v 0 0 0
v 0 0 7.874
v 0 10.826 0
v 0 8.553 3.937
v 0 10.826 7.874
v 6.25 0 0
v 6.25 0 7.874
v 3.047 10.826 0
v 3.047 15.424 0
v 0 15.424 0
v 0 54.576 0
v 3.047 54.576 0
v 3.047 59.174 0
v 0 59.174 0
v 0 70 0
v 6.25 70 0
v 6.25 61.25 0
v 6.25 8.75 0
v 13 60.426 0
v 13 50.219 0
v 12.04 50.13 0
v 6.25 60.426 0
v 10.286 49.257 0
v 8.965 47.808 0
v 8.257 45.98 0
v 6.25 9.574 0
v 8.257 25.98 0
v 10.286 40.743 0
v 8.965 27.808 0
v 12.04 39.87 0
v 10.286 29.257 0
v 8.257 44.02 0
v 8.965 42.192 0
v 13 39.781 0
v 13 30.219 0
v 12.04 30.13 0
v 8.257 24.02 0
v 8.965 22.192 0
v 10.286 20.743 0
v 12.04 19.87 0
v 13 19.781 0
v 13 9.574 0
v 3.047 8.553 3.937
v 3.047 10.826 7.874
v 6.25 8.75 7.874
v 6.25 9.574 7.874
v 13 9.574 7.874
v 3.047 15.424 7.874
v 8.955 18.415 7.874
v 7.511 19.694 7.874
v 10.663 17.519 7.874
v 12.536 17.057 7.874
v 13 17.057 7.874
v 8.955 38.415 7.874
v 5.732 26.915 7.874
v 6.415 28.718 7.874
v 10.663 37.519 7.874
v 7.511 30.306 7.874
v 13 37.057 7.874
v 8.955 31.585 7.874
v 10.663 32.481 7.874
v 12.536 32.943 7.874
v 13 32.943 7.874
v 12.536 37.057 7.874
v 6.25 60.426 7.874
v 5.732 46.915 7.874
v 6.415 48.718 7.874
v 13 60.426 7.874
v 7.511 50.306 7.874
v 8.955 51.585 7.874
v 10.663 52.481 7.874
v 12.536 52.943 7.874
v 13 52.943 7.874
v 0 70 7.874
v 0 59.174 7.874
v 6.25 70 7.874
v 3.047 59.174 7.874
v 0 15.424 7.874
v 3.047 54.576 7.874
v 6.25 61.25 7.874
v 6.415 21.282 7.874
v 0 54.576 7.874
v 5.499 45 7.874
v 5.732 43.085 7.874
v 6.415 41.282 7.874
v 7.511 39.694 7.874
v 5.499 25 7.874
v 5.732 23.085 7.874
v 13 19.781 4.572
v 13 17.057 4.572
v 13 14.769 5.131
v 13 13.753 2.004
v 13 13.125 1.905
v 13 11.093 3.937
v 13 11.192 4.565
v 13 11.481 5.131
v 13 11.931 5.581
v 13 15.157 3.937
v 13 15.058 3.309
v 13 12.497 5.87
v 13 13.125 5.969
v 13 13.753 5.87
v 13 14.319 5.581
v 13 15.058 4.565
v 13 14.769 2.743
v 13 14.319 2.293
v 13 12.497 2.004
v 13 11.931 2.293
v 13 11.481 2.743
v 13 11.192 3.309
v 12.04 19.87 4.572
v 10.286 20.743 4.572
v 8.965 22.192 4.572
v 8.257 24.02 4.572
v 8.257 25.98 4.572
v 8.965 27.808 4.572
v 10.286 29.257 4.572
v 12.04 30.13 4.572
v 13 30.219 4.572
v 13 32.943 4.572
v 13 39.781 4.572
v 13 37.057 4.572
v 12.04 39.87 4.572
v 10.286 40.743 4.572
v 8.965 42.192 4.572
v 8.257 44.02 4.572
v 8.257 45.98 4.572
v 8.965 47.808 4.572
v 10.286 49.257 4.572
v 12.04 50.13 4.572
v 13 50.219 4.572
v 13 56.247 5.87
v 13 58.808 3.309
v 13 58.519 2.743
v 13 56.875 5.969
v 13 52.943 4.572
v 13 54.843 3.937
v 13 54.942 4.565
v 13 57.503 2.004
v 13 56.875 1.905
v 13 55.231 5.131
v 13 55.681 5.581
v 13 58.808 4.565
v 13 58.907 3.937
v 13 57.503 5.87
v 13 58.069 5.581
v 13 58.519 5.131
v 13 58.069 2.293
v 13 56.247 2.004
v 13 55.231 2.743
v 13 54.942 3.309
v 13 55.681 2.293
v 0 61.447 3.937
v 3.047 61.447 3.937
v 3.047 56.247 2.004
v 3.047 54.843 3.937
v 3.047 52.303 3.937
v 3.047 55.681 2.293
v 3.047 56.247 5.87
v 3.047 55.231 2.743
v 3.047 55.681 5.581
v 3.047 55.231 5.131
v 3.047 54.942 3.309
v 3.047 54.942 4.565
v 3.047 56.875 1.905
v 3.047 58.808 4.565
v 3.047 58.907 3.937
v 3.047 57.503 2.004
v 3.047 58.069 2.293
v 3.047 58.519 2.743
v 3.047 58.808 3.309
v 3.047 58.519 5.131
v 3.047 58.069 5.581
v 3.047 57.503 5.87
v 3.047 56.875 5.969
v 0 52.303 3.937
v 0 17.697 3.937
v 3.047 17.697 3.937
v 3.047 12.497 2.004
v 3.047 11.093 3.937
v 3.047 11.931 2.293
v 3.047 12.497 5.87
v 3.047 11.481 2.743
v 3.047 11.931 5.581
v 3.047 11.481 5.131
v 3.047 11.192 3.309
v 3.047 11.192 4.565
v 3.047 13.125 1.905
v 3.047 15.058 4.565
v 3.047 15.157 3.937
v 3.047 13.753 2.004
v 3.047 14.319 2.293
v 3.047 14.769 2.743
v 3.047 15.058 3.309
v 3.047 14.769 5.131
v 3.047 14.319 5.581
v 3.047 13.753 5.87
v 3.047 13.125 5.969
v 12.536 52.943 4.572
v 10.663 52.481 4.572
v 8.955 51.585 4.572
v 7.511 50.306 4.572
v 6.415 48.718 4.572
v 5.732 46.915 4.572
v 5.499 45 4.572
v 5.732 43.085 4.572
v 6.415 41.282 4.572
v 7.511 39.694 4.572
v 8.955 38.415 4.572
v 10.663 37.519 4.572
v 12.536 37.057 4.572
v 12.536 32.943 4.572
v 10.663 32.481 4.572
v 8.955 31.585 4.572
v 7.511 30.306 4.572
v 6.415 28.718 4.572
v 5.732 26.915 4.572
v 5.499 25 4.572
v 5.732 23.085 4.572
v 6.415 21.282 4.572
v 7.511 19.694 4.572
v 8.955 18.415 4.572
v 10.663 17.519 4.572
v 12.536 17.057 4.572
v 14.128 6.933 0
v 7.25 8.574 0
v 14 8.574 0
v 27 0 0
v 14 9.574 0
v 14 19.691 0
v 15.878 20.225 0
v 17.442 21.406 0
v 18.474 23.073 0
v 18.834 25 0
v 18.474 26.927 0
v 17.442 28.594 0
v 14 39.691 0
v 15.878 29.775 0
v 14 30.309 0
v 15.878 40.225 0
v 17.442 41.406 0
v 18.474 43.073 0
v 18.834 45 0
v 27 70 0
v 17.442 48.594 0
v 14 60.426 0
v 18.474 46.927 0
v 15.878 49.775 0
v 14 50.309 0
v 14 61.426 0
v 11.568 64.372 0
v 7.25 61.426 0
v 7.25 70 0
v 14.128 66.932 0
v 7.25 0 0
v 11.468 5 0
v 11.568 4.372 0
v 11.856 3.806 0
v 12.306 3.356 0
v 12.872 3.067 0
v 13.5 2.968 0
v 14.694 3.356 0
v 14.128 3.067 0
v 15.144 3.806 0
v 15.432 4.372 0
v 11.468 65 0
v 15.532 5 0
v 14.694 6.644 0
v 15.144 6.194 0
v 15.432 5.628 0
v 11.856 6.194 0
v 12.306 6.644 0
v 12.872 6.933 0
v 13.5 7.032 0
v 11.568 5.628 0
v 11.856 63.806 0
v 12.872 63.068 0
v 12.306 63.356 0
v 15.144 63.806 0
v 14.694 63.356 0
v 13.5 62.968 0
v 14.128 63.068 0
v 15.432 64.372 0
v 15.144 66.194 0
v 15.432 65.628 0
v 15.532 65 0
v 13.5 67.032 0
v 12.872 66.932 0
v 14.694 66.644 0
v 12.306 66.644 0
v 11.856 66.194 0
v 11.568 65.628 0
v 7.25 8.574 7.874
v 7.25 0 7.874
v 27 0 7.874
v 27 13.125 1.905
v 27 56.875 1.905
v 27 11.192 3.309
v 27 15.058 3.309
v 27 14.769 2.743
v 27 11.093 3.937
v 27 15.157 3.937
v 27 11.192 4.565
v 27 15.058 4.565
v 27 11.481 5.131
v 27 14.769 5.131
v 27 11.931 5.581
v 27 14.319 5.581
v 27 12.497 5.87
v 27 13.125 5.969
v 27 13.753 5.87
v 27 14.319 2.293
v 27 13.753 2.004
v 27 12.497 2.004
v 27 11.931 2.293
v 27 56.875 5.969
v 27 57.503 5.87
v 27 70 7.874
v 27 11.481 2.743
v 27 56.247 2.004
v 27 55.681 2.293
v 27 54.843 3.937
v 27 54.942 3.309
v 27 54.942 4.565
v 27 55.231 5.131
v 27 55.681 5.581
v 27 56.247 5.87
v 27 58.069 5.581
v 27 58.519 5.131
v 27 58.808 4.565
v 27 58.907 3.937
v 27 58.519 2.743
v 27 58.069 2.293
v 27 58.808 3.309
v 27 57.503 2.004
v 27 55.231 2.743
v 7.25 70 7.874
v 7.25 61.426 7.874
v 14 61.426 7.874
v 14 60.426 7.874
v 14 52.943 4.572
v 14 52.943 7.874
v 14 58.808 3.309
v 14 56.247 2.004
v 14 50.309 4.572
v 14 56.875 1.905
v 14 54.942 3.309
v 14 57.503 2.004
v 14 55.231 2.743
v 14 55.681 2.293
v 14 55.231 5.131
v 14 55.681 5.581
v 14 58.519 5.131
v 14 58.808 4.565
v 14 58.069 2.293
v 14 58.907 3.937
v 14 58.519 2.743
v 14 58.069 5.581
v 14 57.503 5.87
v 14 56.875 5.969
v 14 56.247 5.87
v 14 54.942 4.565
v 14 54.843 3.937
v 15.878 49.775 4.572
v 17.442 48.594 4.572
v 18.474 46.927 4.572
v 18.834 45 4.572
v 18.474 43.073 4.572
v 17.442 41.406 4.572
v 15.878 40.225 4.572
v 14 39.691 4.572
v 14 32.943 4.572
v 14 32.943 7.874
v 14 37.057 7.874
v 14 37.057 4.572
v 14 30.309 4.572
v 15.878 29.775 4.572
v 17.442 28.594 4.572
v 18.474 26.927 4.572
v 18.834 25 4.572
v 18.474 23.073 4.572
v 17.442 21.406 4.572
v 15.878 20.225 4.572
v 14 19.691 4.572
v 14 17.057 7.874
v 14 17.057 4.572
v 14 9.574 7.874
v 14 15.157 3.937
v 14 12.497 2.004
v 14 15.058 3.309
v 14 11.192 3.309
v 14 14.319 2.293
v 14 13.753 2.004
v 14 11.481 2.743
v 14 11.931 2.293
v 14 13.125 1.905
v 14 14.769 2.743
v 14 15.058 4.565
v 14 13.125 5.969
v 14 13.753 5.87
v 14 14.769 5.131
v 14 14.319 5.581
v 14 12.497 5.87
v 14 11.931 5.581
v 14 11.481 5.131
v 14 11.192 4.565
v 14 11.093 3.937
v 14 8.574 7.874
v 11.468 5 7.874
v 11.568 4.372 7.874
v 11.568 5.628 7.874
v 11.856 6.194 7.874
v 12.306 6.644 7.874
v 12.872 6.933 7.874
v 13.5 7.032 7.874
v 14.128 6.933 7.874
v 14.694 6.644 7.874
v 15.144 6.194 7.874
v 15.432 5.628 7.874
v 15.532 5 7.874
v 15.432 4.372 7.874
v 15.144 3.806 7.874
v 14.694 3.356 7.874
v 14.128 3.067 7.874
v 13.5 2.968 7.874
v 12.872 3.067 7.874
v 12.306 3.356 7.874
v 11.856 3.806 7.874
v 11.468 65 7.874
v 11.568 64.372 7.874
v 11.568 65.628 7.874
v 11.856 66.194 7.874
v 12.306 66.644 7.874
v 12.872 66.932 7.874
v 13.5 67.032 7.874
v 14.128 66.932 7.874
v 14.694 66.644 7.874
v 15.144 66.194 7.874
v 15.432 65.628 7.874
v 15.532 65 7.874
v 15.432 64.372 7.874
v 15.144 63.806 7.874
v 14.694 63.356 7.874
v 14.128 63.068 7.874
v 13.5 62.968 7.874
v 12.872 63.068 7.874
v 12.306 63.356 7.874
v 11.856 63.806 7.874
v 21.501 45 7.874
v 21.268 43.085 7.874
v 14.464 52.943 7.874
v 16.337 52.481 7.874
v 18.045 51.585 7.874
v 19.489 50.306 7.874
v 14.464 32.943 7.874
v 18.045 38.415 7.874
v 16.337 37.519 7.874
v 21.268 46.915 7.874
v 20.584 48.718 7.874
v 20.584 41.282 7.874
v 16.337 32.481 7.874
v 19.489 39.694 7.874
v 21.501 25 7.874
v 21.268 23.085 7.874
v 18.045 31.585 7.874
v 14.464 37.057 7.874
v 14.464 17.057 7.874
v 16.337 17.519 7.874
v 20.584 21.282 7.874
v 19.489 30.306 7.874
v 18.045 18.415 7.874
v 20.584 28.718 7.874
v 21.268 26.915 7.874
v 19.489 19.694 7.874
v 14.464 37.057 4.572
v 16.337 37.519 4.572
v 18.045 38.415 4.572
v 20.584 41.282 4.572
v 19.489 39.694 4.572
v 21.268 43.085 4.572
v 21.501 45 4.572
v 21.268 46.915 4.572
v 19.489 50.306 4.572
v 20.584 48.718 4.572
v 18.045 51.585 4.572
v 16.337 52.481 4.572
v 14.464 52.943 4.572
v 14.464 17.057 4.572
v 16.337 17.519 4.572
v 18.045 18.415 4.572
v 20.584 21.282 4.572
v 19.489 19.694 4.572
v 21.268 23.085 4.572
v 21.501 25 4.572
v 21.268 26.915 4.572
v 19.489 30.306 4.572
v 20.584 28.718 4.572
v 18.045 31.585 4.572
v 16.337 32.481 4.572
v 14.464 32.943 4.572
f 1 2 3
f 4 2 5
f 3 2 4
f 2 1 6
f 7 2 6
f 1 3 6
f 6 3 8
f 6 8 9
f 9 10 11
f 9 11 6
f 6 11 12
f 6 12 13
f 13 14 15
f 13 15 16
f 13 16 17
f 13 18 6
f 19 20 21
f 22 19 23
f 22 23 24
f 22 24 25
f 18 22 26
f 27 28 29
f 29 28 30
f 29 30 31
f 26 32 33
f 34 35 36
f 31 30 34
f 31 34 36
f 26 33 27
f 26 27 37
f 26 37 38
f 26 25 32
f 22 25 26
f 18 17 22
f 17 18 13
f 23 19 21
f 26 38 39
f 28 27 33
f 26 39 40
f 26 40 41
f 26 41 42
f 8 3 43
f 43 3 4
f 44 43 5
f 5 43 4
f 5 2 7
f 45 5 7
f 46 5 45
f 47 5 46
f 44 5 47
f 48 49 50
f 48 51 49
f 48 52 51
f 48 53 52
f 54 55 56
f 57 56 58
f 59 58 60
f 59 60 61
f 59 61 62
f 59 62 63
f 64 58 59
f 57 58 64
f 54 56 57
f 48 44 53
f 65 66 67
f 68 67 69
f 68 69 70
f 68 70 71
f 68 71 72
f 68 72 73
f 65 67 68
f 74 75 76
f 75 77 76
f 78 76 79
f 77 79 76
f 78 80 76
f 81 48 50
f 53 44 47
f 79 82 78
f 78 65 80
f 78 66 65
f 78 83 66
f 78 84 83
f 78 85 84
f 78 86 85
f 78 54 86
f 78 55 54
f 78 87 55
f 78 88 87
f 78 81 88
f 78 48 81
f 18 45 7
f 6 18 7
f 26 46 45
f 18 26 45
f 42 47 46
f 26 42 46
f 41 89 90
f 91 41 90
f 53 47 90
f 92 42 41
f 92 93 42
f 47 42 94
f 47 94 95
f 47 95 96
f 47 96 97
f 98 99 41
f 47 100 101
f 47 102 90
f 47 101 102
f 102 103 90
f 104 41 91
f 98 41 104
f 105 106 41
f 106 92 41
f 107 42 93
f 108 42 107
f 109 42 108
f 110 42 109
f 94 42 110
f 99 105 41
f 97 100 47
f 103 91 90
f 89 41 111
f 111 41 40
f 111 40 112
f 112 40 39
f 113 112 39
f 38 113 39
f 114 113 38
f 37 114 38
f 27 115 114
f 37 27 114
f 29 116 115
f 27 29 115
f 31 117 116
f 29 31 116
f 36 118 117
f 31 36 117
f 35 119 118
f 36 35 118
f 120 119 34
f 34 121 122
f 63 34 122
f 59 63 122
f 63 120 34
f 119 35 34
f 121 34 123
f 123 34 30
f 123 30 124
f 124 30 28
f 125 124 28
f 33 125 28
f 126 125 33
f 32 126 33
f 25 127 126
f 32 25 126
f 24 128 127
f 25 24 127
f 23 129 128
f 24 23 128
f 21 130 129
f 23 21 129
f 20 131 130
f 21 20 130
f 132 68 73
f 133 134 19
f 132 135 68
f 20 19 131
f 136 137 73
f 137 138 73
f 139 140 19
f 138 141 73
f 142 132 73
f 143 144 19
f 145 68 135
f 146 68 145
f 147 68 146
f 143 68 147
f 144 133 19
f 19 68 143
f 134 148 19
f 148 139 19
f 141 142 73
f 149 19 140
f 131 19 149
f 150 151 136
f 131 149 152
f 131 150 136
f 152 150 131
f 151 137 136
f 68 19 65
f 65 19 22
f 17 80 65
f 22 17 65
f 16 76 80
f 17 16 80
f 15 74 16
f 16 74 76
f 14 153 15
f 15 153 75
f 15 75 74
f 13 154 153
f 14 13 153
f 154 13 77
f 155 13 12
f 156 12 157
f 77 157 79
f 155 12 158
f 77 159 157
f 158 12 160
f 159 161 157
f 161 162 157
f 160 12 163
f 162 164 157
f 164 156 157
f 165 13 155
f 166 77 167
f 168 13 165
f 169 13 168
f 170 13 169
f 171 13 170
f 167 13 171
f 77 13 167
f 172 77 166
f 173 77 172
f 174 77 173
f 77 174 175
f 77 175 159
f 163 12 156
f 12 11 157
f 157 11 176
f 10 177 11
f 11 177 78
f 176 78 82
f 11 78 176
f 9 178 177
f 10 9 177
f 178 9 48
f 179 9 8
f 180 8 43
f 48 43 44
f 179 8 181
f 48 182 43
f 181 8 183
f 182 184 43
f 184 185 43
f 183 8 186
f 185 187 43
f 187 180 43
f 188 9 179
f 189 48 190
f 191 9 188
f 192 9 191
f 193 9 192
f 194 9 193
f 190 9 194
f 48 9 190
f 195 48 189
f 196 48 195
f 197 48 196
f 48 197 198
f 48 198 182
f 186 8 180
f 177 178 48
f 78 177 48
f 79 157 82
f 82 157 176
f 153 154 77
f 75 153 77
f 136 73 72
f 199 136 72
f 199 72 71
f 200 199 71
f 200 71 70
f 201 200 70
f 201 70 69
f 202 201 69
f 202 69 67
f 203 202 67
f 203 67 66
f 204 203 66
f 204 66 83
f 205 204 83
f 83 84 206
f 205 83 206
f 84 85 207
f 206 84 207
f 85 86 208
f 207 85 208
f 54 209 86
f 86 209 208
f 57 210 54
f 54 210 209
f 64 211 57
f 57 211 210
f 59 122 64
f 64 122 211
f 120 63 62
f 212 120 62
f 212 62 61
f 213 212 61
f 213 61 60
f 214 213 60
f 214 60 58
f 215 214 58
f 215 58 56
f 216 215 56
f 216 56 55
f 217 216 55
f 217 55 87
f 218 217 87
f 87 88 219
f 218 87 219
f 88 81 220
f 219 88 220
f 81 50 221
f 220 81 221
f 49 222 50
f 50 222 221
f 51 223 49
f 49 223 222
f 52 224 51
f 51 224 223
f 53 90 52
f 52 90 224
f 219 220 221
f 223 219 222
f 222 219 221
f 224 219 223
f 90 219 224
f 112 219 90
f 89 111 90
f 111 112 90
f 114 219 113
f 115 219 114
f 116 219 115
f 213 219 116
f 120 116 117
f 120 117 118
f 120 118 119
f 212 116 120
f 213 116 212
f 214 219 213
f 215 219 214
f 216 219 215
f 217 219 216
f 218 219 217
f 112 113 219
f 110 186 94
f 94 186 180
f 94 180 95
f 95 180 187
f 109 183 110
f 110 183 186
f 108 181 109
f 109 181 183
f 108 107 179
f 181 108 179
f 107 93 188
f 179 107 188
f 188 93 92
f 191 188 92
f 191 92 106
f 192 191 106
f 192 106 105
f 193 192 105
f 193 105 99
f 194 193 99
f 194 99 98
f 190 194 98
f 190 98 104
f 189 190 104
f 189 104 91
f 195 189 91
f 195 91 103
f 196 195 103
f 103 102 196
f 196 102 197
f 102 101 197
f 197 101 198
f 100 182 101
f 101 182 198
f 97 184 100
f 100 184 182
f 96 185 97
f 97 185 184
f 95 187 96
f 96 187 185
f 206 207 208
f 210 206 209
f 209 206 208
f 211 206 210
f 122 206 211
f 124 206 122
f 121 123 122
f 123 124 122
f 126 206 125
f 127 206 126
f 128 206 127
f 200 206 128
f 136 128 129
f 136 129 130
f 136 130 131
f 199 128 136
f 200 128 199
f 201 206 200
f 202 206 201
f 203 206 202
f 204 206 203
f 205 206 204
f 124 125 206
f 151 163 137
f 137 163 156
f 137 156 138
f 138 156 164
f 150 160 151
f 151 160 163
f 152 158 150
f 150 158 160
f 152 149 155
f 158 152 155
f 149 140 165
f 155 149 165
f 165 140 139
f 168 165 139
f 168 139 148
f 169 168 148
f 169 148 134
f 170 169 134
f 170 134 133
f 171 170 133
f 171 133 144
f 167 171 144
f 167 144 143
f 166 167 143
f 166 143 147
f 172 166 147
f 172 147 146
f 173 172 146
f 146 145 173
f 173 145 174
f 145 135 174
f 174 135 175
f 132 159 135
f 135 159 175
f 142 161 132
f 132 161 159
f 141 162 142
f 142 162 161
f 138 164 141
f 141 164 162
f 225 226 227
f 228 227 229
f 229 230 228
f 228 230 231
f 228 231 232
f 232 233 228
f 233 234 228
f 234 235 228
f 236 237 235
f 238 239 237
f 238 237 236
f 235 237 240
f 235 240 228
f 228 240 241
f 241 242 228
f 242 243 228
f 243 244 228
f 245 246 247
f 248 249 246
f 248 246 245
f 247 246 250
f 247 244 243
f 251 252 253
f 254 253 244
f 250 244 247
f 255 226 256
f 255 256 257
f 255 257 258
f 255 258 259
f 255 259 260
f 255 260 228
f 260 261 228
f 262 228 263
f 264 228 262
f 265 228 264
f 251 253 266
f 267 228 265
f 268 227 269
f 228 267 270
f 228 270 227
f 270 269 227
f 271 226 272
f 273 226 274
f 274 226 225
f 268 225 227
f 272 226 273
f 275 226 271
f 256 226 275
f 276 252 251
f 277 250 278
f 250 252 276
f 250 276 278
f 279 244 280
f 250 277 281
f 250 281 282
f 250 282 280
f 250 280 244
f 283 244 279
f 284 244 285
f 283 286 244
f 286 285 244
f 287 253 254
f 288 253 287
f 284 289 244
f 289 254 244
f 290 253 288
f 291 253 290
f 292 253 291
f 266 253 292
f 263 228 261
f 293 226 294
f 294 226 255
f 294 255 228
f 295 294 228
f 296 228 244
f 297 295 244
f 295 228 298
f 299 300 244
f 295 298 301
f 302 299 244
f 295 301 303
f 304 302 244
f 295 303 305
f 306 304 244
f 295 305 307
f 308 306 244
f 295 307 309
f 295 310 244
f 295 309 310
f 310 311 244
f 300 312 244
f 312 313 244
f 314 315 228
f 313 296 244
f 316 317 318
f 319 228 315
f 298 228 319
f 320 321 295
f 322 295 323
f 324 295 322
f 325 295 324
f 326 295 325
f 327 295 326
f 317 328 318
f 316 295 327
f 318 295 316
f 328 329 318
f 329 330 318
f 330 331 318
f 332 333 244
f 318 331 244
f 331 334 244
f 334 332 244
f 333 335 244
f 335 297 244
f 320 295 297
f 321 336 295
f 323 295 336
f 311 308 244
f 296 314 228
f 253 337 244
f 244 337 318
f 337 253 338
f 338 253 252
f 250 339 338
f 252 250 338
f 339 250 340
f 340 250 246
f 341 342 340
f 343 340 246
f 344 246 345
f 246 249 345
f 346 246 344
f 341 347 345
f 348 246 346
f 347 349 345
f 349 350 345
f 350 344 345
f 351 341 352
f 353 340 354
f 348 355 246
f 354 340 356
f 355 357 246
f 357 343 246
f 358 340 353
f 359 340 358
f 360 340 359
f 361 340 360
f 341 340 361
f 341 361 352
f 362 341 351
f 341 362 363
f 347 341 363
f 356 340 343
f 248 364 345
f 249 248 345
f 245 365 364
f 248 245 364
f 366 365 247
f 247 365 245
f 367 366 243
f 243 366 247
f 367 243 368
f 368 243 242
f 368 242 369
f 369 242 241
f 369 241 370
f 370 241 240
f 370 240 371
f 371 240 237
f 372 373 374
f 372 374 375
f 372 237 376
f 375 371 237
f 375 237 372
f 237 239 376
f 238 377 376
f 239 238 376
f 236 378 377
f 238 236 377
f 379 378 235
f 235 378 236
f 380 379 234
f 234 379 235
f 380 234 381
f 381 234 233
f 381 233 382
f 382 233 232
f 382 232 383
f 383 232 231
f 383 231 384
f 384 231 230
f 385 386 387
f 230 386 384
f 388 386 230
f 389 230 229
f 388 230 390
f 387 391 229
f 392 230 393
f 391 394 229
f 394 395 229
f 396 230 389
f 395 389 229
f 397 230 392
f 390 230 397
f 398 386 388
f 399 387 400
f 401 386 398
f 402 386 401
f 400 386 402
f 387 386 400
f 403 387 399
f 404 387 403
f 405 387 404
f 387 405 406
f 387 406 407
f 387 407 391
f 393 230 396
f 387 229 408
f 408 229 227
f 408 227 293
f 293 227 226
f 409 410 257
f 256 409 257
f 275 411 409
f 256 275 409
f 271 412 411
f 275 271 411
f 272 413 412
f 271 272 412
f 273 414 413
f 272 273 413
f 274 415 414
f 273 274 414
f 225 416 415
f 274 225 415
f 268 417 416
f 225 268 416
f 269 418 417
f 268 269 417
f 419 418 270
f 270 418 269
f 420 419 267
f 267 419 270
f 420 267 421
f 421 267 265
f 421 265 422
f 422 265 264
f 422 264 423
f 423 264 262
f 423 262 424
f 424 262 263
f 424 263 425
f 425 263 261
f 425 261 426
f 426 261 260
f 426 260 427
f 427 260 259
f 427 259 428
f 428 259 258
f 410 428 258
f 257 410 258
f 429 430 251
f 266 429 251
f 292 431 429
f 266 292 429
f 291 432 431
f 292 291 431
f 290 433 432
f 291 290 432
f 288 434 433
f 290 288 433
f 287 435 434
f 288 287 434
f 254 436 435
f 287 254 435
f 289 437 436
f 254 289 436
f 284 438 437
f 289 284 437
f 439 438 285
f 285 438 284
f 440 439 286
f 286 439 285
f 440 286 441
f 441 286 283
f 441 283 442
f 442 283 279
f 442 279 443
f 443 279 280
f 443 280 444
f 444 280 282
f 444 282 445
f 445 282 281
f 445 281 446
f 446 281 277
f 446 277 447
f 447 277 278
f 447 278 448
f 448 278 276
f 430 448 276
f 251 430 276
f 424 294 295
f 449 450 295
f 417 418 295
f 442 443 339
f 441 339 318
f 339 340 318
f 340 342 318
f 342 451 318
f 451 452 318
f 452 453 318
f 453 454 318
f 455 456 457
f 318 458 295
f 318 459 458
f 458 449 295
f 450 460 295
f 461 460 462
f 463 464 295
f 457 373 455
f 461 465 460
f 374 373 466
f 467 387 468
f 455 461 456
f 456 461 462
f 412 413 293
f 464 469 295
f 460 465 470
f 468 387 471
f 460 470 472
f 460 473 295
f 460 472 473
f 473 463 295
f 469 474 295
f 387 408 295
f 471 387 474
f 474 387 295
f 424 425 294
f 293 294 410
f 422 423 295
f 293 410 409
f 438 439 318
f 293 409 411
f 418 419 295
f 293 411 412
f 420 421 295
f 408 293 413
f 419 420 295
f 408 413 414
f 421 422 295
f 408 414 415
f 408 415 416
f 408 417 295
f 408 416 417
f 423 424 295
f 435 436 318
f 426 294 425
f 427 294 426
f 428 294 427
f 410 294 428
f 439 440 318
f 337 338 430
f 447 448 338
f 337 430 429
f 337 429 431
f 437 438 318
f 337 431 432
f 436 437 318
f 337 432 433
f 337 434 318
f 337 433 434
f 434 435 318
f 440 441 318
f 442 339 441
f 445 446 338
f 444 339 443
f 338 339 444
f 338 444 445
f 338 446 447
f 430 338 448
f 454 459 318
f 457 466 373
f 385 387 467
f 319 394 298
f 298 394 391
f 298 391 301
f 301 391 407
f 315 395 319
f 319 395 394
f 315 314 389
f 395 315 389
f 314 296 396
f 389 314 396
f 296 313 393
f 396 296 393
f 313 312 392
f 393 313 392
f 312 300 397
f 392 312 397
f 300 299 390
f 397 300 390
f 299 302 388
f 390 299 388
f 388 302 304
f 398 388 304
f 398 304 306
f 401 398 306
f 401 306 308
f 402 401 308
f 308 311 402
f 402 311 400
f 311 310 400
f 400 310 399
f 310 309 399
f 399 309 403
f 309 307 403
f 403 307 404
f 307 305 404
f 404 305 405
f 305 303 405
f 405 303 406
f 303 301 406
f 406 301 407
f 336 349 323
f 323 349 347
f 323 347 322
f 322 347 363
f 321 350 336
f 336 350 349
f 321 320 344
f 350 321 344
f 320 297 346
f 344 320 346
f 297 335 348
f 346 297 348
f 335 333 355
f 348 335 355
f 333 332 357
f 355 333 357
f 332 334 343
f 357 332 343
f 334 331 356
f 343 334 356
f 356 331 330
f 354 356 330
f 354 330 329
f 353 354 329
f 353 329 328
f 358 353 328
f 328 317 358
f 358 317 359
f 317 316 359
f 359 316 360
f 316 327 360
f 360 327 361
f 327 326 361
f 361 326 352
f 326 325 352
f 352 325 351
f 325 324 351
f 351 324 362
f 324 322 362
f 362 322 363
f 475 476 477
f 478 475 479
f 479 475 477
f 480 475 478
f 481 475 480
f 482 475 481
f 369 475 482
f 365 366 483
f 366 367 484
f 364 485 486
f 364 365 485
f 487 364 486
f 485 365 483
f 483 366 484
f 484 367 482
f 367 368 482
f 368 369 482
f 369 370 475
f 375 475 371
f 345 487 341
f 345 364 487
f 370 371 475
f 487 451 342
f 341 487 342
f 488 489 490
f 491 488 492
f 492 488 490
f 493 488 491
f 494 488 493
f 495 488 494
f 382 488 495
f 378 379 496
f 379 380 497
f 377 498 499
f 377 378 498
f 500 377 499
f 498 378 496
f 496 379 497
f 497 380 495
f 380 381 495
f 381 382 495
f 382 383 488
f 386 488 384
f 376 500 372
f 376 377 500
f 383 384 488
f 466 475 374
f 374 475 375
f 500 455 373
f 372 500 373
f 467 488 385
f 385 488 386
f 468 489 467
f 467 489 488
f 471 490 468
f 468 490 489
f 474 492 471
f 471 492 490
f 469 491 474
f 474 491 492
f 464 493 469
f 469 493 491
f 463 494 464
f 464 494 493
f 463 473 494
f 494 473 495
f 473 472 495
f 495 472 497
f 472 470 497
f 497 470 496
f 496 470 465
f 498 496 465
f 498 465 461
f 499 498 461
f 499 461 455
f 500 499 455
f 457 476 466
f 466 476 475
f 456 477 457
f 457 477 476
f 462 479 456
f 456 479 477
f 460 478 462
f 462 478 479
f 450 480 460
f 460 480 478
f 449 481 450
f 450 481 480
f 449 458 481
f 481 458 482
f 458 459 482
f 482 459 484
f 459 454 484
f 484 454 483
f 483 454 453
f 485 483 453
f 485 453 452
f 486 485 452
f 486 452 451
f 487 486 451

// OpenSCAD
include <MCAD/units.scad>
include <MCAD/nuts_and_bolts.scad>


width = 27;
length = 70;
height = .31 * inch;
jhead_diameter = .63 * inch;
jhead_diameter_inner = .42 * inch;


module no6nut() { cylinder(r= .36/2 * inch, h=.12 * inch, $fn = 6, center=[0,0]); }
module no6rod() { cylinder(r= .16/2 * inch, h=2 * inch, $fn = 20, center=[0,0]); }

difference(){
cube([width,length,height]);


	// JHead Hole
	for (side = [-1, 1])
		translate([width/2,length/2  + (10 * side),0])
		union(){
			translate([0,0,.18 * inch])
				cylinder(100,jhead_diameter/2,jhead_diameter/2);

			cylinder(100,jhead_diameter_inner/2,jhead_diameter_inner/2);
		};

	// Cut in half
	for (side = [-1,1])
	translate([width/4,length/2 + length/1.6*side,0])
	cube([1,length/2,100], center=true);
	
	for (side = [-1,1])
	translate([width/2.6666,length/2 + length/2.7*side,0])
	cube([width/4 + 1,1,100], center=true);

	translate([width/2,length/2,0])
	cube([1,length/1.35,100], center=true);	
	
	

// nut holder
    for (side = [-1,1])
	translate([-0.001, length/2 + length/3.2 * side ,height/2])
	rotate([0,90,0])
	rotate([0,0,90])
	union(){
	no6nut();
	no6rod();
	}

	// holes to connect to carriage
	for (side = [-1,1])
	{
       translate([width/2,length/2 + 60/2 * side ,0])
	  no6rod();
	}	
	
	
	// made side thinner
	//for (side=[0,1])
	//translate([0,side * (length-12),5])
	//# cube([width,12,height]);
	
	
	
};
